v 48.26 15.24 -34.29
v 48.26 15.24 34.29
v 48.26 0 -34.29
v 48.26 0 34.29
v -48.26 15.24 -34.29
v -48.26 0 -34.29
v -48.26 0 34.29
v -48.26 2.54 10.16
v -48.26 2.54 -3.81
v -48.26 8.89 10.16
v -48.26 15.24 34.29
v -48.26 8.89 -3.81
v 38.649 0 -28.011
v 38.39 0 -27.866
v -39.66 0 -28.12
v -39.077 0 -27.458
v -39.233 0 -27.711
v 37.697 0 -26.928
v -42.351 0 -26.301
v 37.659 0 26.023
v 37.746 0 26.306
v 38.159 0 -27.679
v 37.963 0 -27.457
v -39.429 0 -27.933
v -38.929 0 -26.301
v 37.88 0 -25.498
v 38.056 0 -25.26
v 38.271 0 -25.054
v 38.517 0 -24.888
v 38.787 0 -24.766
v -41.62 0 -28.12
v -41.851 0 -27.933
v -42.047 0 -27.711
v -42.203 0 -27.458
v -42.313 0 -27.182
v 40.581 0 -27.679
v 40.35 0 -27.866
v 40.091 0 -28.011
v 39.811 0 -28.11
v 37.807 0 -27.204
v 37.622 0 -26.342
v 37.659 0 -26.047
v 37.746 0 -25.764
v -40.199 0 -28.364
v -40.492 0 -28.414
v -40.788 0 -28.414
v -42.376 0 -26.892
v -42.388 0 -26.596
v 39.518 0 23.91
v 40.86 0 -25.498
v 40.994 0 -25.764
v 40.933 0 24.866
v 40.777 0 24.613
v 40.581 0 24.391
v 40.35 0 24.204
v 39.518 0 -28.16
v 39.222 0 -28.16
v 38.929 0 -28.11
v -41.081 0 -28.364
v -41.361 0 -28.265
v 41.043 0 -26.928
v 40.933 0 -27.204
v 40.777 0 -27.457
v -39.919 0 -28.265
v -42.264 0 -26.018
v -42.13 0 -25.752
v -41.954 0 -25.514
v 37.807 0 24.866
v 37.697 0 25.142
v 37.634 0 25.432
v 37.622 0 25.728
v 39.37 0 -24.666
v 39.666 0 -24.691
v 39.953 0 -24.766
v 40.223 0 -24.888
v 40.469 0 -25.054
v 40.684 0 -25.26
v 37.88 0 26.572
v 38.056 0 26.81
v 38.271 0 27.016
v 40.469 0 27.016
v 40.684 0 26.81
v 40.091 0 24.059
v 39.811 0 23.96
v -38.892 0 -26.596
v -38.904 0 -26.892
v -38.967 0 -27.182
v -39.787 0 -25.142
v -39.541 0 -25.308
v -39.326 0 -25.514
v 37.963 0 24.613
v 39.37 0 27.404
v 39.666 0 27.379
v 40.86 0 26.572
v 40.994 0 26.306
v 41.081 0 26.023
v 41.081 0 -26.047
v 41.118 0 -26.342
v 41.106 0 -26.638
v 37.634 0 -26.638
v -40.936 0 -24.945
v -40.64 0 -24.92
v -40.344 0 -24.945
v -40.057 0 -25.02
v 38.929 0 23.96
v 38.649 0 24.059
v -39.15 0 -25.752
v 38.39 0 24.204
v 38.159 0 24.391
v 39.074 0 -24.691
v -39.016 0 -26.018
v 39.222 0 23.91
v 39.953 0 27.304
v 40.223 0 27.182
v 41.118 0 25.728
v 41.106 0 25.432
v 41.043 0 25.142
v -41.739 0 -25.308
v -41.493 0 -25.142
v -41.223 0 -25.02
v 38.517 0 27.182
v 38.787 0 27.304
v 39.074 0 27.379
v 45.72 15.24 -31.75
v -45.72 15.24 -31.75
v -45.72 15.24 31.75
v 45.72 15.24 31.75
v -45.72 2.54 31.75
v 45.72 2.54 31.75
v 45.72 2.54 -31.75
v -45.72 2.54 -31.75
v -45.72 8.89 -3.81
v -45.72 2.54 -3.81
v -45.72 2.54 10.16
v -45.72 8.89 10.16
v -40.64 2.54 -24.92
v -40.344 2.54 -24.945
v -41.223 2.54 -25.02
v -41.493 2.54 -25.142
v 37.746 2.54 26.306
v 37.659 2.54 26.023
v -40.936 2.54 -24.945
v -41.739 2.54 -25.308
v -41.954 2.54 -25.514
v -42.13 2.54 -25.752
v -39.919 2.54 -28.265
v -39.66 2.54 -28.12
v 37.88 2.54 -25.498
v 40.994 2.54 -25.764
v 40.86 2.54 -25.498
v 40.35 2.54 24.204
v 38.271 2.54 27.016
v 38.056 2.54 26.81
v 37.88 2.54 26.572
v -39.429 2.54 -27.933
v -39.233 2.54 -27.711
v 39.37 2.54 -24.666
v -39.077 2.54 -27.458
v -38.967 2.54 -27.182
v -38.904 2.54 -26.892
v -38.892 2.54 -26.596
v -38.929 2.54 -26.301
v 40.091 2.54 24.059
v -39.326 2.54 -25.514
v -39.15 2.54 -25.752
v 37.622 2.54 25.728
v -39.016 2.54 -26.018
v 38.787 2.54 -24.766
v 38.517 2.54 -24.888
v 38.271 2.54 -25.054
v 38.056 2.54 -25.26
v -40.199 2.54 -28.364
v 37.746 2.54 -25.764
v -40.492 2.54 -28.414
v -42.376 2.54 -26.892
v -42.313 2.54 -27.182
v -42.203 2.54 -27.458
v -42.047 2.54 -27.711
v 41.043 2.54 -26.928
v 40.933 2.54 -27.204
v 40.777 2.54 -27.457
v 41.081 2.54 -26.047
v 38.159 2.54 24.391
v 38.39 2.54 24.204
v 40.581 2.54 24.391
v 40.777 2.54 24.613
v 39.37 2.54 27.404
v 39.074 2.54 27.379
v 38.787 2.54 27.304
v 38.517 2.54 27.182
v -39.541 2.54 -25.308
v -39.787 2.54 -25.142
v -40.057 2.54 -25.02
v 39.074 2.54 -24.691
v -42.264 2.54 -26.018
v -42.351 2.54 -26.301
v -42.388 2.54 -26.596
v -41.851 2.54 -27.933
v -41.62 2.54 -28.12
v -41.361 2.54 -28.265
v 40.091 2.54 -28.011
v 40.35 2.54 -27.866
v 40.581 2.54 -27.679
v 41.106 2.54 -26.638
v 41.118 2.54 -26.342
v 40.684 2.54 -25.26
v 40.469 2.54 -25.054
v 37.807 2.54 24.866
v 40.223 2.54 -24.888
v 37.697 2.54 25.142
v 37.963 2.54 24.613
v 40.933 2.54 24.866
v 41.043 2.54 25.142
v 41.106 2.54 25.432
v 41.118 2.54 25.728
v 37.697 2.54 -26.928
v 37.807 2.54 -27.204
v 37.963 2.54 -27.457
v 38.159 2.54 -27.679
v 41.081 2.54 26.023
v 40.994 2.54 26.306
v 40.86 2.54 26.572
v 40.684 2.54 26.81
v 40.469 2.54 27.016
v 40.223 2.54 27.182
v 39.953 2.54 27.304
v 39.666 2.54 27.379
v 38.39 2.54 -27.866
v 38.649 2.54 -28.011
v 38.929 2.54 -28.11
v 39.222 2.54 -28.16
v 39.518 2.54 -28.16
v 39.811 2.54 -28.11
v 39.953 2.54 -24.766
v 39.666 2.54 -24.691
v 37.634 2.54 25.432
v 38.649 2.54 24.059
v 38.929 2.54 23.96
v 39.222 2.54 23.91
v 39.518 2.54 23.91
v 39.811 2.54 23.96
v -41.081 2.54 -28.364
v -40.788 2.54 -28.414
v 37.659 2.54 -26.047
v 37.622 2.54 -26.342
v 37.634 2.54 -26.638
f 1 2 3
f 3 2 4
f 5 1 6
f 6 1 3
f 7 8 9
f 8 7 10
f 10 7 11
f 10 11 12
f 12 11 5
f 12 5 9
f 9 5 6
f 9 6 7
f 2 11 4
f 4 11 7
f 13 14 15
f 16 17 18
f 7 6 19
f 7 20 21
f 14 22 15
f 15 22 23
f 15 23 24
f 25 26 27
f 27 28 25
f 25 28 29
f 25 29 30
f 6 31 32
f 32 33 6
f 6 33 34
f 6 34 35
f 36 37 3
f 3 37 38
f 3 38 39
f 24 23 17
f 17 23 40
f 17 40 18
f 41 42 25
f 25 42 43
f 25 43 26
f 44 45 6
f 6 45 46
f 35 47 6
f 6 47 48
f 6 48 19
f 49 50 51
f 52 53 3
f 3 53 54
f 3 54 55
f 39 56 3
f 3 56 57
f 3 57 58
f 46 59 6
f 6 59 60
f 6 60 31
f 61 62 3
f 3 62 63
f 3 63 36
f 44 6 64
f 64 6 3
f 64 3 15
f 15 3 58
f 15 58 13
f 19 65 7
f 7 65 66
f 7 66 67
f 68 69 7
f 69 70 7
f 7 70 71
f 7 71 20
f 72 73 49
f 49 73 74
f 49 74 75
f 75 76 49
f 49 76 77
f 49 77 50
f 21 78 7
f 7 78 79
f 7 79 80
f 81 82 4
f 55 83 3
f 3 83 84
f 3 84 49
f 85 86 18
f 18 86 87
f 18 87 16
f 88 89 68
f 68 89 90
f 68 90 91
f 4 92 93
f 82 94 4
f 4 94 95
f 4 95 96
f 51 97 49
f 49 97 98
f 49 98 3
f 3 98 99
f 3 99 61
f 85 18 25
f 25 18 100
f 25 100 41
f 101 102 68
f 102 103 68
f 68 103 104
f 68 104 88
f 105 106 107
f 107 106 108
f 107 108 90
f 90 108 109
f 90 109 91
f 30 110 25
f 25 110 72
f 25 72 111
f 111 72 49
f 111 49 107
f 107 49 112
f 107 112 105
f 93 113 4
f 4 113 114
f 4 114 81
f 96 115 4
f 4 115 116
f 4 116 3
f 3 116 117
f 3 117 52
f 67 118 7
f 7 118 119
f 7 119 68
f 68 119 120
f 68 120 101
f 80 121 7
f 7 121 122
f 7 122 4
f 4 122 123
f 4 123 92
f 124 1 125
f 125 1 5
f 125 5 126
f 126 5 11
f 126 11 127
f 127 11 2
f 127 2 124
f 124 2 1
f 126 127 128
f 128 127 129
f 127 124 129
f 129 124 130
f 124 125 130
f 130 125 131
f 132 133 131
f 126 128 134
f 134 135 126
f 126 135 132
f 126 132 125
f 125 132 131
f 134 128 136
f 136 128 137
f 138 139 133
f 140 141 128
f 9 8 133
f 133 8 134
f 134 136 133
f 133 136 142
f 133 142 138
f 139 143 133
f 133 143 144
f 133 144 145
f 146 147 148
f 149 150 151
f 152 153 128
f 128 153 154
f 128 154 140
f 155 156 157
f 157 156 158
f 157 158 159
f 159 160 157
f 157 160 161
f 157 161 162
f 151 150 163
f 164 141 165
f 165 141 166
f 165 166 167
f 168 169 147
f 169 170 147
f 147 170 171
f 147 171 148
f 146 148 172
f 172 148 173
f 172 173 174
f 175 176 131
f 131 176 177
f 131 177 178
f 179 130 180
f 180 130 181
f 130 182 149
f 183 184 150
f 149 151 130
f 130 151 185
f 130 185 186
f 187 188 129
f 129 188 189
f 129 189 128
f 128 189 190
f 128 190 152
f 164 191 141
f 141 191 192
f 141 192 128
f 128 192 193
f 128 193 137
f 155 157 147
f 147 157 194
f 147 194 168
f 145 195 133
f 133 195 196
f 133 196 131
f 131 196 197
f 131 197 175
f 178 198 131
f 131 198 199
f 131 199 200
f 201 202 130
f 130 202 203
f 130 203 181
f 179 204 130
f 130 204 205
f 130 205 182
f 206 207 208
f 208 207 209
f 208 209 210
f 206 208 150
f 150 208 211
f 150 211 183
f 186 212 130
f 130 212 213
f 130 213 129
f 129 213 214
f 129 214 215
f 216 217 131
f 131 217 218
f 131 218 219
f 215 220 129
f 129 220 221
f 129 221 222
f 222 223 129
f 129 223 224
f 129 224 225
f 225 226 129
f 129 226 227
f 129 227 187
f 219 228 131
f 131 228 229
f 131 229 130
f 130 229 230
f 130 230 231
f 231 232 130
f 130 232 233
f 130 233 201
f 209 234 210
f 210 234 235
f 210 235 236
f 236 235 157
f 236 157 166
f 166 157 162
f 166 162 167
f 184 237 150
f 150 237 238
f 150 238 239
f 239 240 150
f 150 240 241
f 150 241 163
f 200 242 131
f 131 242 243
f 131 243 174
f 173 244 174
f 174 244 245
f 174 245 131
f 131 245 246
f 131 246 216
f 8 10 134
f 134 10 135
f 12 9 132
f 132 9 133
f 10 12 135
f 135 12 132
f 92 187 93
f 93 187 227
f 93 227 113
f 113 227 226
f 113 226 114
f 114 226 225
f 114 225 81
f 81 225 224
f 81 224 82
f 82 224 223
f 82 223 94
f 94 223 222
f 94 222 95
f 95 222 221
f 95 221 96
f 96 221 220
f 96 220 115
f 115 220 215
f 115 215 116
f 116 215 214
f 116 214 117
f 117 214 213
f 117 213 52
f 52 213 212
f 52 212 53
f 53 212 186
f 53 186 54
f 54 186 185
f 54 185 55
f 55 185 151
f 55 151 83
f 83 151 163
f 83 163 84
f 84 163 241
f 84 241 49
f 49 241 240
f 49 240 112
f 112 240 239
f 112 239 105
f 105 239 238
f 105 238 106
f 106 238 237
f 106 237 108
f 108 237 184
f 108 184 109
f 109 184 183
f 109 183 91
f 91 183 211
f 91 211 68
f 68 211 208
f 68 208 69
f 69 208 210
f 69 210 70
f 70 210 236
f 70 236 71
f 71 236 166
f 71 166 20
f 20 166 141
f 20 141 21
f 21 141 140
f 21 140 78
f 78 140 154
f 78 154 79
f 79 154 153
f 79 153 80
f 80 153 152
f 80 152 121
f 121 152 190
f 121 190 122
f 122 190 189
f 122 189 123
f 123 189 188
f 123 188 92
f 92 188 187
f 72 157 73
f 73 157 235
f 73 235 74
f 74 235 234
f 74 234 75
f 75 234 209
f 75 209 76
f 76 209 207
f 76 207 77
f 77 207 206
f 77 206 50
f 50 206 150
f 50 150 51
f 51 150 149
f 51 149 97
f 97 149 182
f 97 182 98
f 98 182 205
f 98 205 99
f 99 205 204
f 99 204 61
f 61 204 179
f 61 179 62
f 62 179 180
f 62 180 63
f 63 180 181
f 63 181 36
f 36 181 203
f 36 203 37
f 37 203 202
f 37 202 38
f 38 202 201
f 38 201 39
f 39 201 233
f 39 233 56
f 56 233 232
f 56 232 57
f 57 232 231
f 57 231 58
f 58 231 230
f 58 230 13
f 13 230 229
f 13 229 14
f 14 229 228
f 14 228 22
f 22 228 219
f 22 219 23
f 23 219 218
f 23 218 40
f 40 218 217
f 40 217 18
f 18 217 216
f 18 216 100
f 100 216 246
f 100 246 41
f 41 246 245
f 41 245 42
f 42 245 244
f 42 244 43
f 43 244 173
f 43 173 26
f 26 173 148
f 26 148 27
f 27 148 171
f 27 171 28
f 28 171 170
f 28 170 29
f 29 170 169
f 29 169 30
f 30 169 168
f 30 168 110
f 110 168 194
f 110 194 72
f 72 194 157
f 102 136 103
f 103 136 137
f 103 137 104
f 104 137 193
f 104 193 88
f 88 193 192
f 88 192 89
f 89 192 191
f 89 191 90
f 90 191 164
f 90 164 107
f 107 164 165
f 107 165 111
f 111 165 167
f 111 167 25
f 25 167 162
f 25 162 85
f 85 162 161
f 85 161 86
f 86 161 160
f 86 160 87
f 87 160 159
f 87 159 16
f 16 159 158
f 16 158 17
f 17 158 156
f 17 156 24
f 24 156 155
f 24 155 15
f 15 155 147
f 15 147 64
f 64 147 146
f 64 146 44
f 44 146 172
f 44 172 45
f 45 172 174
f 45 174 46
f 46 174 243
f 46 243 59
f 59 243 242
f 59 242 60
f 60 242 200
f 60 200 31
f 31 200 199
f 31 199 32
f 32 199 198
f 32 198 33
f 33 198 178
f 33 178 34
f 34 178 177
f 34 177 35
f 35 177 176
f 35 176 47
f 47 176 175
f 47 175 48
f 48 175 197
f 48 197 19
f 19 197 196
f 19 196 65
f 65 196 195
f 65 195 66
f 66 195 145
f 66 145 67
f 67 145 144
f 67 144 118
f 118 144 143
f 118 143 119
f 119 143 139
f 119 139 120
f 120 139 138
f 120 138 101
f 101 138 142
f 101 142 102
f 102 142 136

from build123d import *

# Parameters (mm, degrees)
SKETCH1_W           = 96.52
SKETCH1_H           = 68.58
BOSS_EXTRUDE2_DEPTH = 2.54
SKETCH4_W           = 96.52
SKETCH4_H           = 68.58
SKETCH4_W_2         = 91.44
SKETCH4_H_2         = 63.5
BOSS_EXTRUDE3_DEPTH = 12.7
SKETCH5_W           = 13.97
SKETCH5_H           = 6.35
CUT_EXTRUDE2_DEPTH  = 12.7
SKETCH6_R           = 1.75
CUT_EXTRUDE4_DEPTH  = 2.54


with BuildPart() as part:
    # Sketch1 → Boss-Extrude2 (new body)
    with BuildSketch(Plane(origin=(0, 0, 0), x_dir=(1, 0, 0), z_dir=(0, 1, 0))):
        Rectangle(SKETCH1_W, SKETCH1_H)
    extrude(amount=BOSS_EXTRUDE2_DEPTH)

    # Sketch4 → Boss-Extrude3 (add)
    with BuildSketch(Plane(origin=(0, 2.54, 0), x_dir=(1, 0, 0), z_dir=(0, 1, 0))):
        Rectangle(SKETCH4_W, SKETCH4_H)
        Rectangle(SKETCH4_W_2, SKETCH4_H_2, mode=Mode.SUBTRACT)
    extrude(amount=BOSS_EXTRUDE3_DEPTH)

    # Sketch5 → Cut-Extrude2 (cut)
    with BuildSketch(Plane.ZY.offset(48.26)):
        with Locations((3.175, 5.715)):
            Rectangle(SKETCH5_W, SKETCH5_H)
    extrude(amount=-CUT_EXTRUDE2_DEPTH, mode=Mode.SUBTRACT)

    # Sketch6 → Cut-Extrude4 (cut)
    with BuildSketch(Plane(origin=(0, 2.54, 0), x_dir=(1, 0, 0), z_dir=(0, 1, 0))):
        with Locations(Location((-40.64, 26.67, 0), (0, 0, 270))):
            Circle(SKETCH6_R)
        with Locations(Location((39.37, 26.416, 0), (0, 0, 270))):
            Circle(SKETCH6_R)
        with Locations(Location((39.37, -25.654, 0), (0, 0, 270))):
            Circle(SKETCH6_R)
    extrude(amount=-CUT_EXTRUDE4_DEPTH, mode=Mode.SUBTRACT)


solid = part.part
